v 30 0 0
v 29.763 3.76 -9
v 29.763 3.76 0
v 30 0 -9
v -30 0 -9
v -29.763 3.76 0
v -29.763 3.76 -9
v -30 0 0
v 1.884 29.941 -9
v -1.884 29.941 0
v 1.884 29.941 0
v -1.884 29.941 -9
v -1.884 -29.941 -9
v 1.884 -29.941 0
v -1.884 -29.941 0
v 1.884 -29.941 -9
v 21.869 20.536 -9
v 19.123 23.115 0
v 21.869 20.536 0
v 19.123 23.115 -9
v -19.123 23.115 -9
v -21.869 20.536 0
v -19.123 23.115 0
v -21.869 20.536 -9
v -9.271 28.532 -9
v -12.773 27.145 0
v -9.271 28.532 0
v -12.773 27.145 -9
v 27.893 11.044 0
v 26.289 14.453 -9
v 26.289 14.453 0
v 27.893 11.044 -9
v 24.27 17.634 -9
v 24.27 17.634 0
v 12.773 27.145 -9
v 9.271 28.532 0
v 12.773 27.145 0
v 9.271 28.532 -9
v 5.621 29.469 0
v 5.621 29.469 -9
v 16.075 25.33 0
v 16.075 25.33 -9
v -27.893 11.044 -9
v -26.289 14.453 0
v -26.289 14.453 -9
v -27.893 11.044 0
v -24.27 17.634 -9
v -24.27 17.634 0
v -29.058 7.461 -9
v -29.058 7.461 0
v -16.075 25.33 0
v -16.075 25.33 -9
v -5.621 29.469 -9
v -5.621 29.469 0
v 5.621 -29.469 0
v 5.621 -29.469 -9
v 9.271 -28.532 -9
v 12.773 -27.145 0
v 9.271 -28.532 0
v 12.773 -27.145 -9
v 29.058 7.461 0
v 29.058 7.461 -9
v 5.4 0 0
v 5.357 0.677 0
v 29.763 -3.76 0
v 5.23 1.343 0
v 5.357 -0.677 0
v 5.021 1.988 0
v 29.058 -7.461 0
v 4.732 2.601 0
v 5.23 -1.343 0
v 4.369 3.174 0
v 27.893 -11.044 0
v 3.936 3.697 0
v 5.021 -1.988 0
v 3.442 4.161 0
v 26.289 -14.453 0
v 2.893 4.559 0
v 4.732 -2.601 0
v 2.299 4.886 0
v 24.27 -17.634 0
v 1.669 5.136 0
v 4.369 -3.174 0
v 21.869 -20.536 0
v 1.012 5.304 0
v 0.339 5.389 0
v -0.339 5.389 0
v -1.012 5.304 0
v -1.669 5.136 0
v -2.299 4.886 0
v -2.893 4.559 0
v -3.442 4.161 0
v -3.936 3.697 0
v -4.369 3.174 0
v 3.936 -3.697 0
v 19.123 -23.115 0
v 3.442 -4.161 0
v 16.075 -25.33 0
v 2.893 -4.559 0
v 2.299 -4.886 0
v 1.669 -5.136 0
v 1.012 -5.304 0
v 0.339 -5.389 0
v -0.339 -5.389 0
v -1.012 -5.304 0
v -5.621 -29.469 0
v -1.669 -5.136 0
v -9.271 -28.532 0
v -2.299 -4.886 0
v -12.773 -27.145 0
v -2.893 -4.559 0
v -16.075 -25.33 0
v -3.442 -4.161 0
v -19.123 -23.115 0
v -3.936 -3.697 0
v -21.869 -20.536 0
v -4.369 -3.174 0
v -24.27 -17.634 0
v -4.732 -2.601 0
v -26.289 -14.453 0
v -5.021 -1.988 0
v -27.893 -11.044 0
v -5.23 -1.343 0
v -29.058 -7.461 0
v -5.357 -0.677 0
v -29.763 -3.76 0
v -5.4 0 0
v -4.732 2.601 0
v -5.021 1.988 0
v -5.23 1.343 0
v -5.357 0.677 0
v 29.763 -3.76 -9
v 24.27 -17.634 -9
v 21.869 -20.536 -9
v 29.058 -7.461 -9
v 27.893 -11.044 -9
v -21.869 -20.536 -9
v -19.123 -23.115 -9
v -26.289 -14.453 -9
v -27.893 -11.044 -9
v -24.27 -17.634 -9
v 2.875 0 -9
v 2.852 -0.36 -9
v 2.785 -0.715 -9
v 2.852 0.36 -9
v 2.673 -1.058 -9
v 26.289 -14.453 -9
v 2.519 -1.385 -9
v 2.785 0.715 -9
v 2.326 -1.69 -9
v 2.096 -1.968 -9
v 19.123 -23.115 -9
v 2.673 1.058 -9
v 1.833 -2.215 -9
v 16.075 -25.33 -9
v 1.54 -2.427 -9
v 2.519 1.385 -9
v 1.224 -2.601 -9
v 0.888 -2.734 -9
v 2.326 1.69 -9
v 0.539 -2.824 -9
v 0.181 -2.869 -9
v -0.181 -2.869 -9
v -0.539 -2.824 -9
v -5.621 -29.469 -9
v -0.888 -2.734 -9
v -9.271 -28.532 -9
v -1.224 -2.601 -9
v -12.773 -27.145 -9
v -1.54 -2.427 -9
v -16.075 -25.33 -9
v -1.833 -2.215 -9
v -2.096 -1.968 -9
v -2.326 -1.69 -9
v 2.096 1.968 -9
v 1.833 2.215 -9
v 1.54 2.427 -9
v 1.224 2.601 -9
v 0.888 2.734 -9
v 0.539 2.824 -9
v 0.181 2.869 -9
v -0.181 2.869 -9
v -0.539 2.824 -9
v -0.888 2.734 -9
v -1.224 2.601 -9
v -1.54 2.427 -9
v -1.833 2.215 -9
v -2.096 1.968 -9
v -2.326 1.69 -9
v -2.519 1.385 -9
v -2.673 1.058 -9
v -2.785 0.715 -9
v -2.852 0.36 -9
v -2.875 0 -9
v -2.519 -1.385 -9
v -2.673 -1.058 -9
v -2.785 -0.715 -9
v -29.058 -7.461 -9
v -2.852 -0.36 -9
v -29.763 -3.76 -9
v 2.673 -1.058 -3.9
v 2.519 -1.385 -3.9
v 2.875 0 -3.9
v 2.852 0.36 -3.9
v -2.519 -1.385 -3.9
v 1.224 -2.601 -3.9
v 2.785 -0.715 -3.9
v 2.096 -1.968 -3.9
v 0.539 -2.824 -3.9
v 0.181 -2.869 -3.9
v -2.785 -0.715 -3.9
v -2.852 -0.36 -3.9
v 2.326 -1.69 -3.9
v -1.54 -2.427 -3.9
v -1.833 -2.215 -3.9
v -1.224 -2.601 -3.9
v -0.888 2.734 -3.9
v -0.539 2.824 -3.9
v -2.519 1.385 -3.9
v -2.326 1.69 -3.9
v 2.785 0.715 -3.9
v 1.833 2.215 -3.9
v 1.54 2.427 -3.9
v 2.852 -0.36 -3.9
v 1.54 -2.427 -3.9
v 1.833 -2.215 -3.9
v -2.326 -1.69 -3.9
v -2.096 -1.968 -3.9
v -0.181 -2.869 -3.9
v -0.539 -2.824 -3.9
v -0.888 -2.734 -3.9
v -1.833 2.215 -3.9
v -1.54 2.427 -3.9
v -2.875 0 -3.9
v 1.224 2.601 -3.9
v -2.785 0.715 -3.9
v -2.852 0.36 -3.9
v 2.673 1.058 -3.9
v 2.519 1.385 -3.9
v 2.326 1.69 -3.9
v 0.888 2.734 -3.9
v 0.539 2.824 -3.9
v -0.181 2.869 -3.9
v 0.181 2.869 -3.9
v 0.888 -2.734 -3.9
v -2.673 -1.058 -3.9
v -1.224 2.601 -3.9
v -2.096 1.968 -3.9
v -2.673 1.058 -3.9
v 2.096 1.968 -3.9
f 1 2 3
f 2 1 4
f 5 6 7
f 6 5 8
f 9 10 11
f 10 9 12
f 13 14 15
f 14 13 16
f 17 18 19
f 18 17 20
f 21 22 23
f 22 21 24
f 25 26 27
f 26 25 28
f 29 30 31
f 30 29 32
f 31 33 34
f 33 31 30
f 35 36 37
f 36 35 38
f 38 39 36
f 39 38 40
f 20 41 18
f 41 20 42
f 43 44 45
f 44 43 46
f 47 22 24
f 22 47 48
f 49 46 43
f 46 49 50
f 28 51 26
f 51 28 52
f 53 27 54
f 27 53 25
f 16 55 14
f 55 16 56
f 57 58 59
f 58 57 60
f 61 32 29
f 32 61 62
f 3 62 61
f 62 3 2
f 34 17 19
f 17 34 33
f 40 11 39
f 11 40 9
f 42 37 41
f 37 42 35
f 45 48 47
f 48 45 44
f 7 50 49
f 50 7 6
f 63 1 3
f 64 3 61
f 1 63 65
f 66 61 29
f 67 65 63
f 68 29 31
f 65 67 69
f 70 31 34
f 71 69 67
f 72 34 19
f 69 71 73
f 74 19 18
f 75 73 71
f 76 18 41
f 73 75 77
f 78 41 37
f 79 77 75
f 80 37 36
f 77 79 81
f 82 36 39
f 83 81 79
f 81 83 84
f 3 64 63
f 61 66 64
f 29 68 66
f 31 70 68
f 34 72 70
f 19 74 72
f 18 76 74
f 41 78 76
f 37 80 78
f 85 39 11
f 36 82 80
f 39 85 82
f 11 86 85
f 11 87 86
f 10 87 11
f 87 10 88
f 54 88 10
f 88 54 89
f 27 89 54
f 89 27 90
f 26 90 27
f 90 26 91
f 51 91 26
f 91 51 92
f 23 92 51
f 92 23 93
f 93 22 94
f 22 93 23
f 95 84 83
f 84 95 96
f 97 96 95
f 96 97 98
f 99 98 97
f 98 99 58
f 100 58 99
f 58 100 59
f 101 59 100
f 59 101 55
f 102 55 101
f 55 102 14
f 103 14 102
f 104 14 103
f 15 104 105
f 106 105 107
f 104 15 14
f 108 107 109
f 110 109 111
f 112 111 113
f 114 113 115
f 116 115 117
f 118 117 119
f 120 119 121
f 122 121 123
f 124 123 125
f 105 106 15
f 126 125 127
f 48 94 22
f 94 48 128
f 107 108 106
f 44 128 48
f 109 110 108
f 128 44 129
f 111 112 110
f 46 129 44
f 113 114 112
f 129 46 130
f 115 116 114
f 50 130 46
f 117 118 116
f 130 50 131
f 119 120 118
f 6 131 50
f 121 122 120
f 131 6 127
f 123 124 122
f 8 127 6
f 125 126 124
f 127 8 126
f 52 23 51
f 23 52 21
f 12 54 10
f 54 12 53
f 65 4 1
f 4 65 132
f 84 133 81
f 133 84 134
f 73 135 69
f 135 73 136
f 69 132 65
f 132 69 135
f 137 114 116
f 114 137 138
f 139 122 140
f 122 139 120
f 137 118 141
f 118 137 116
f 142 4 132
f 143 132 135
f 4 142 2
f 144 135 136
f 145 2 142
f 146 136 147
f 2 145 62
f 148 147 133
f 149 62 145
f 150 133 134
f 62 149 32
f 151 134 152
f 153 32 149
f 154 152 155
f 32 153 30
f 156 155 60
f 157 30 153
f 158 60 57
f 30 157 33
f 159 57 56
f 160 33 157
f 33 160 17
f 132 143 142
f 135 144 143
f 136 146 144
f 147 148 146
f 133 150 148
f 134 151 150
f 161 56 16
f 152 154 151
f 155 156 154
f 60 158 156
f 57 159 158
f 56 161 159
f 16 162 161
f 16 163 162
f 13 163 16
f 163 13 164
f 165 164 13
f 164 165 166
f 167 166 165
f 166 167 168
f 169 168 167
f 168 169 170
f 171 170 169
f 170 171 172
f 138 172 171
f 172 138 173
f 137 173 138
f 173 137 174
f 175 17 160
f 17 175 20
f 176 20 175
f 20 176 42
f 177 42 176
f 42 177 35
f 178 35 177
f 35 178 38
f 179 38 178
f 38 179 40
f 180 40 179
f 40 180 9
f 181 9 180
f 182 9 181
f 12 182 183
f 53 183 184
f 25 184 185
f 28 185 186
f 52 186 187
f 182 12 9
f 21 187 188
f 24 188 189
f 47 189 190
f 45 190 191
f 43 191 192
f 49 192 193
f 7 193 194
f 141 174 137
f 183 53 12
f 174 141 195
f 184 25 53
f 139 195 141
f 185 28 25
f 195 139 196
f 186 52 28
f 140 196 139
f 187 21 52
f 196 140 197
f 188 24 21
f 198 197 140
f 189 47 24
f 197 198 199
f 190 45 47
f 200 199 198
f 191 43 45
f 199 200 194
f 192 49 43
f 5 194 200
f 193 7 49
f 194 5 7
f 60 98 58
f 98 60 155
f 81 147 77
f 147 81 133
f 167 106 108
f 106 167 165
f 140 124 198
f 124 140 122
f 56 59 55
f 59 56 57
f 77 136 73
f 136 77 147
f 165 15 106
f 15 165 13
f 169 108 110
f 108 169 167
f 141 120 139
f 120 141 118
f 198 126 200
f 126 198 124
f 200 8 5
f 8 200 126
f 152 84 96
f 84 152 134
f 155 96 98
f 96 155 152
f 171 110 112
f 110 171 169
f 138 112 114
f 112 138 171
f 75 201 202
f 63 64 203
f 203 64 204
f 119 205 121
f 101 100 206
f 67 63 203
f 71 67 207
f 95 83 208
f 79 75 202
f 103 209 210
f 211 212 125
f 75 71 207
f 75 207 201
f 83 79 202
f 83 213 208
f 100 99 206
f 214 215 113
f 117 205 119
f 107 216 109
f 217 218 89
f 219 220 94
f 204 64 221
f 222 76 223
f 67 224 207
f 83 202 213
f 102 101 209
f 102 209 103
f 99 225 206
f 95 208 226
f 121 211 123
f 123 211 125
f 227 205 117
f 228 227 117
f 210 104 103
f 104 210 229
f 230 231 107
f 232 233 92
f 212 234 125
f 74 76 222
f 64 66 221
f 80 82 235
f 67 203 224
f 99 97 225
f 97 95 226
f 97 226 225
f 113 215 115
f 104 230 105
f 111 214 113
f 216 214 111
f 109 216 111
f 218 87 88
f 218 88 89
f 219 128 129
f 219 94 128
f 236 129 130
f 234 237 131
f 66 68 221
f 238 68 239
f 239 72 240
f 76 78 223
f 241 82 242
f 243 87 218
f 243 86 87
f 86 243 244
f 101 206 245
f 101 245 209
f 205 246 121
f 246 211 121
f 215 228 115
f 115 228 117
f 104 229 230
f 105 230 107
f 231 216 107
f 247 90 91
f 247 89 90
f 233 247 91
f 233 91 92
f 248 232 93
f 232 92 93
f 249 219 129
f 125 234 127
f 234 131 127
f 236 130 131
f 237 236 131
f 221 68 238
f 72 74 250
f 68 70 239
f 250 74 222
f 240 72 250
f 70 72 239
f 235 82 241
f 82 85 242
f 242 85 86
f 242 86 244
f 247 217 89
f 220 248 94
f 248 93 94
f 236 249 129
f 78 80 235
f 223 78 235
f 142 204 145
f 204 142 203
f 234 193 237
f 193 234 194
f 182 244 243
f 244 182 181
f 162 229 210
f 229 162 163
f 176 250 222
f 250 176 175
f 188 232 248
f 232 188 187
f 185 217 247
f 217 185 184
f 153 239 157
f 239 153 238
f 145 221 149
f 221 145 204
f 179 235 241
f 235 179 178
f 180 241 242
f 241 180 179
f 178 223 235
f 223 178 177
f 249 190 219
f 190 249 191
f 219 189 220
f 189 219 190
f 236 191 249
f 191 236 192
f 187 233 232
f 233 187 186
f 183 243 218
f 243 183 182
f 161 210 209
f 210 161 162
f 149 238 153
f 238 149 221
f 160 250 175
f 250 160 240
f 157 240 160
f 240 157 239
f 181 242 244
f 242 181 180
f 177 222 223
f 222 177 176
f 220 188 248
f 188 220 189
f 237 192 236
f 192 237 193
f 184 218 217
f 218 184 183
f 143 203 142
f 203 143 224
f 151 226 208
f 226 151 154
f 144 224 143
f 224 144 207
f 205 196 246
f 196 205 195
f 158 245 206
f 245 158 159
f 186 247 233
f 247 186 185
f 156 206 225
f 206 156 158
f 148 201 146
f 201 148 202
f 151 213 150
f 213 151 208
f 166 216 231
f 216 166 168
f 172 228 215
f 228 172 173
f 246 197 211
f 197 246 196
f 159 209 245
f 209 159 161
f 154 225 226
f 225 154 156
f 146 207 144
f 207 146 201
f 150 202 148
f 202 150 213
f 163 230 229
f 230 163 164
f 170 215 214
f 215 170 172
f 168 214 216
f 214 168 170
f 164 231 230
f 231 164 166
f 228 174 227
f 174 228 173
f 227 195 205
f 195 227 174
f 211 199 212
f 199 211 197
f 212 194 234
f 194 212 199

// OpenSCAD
$fn = 50;


difference() {
	union() {
		translate(v = [0, 0, -9.0000000000]) {
			cylinder(h = 9, r = 30.0000000000);
		}
		translate(v = [0, 0, -9.0000000000]) {
			cylinder(h = 9, r = 2.8750000000);
		}
	}
	union() {
		translate(v = [0, 0, 0]) {
			rotate(a = [0, 0, 0]) {
				difference() {
					union() {
						translate(v = [0, 0, -9.0000000000]) {
							cylinder(h = 9, r = 2.6000000000);
						}
						translate(v = [0, 0, -3.9000000000]) {
							cylinder(h = 3.9000000000, r1 = 2.8750000000, r2 = 5.4000000000);
						}
						translate(v = [0, 0, -9.0000000000]) {
							cylinder(h = 9, r = 2.8750000000);
						}
						translate(v = [0, 0, -9.0000000000]) {
							cylinder(h = 9, r = 2.6000000000);
						}
					}
					union();
				}
			}
		}
	}
}
